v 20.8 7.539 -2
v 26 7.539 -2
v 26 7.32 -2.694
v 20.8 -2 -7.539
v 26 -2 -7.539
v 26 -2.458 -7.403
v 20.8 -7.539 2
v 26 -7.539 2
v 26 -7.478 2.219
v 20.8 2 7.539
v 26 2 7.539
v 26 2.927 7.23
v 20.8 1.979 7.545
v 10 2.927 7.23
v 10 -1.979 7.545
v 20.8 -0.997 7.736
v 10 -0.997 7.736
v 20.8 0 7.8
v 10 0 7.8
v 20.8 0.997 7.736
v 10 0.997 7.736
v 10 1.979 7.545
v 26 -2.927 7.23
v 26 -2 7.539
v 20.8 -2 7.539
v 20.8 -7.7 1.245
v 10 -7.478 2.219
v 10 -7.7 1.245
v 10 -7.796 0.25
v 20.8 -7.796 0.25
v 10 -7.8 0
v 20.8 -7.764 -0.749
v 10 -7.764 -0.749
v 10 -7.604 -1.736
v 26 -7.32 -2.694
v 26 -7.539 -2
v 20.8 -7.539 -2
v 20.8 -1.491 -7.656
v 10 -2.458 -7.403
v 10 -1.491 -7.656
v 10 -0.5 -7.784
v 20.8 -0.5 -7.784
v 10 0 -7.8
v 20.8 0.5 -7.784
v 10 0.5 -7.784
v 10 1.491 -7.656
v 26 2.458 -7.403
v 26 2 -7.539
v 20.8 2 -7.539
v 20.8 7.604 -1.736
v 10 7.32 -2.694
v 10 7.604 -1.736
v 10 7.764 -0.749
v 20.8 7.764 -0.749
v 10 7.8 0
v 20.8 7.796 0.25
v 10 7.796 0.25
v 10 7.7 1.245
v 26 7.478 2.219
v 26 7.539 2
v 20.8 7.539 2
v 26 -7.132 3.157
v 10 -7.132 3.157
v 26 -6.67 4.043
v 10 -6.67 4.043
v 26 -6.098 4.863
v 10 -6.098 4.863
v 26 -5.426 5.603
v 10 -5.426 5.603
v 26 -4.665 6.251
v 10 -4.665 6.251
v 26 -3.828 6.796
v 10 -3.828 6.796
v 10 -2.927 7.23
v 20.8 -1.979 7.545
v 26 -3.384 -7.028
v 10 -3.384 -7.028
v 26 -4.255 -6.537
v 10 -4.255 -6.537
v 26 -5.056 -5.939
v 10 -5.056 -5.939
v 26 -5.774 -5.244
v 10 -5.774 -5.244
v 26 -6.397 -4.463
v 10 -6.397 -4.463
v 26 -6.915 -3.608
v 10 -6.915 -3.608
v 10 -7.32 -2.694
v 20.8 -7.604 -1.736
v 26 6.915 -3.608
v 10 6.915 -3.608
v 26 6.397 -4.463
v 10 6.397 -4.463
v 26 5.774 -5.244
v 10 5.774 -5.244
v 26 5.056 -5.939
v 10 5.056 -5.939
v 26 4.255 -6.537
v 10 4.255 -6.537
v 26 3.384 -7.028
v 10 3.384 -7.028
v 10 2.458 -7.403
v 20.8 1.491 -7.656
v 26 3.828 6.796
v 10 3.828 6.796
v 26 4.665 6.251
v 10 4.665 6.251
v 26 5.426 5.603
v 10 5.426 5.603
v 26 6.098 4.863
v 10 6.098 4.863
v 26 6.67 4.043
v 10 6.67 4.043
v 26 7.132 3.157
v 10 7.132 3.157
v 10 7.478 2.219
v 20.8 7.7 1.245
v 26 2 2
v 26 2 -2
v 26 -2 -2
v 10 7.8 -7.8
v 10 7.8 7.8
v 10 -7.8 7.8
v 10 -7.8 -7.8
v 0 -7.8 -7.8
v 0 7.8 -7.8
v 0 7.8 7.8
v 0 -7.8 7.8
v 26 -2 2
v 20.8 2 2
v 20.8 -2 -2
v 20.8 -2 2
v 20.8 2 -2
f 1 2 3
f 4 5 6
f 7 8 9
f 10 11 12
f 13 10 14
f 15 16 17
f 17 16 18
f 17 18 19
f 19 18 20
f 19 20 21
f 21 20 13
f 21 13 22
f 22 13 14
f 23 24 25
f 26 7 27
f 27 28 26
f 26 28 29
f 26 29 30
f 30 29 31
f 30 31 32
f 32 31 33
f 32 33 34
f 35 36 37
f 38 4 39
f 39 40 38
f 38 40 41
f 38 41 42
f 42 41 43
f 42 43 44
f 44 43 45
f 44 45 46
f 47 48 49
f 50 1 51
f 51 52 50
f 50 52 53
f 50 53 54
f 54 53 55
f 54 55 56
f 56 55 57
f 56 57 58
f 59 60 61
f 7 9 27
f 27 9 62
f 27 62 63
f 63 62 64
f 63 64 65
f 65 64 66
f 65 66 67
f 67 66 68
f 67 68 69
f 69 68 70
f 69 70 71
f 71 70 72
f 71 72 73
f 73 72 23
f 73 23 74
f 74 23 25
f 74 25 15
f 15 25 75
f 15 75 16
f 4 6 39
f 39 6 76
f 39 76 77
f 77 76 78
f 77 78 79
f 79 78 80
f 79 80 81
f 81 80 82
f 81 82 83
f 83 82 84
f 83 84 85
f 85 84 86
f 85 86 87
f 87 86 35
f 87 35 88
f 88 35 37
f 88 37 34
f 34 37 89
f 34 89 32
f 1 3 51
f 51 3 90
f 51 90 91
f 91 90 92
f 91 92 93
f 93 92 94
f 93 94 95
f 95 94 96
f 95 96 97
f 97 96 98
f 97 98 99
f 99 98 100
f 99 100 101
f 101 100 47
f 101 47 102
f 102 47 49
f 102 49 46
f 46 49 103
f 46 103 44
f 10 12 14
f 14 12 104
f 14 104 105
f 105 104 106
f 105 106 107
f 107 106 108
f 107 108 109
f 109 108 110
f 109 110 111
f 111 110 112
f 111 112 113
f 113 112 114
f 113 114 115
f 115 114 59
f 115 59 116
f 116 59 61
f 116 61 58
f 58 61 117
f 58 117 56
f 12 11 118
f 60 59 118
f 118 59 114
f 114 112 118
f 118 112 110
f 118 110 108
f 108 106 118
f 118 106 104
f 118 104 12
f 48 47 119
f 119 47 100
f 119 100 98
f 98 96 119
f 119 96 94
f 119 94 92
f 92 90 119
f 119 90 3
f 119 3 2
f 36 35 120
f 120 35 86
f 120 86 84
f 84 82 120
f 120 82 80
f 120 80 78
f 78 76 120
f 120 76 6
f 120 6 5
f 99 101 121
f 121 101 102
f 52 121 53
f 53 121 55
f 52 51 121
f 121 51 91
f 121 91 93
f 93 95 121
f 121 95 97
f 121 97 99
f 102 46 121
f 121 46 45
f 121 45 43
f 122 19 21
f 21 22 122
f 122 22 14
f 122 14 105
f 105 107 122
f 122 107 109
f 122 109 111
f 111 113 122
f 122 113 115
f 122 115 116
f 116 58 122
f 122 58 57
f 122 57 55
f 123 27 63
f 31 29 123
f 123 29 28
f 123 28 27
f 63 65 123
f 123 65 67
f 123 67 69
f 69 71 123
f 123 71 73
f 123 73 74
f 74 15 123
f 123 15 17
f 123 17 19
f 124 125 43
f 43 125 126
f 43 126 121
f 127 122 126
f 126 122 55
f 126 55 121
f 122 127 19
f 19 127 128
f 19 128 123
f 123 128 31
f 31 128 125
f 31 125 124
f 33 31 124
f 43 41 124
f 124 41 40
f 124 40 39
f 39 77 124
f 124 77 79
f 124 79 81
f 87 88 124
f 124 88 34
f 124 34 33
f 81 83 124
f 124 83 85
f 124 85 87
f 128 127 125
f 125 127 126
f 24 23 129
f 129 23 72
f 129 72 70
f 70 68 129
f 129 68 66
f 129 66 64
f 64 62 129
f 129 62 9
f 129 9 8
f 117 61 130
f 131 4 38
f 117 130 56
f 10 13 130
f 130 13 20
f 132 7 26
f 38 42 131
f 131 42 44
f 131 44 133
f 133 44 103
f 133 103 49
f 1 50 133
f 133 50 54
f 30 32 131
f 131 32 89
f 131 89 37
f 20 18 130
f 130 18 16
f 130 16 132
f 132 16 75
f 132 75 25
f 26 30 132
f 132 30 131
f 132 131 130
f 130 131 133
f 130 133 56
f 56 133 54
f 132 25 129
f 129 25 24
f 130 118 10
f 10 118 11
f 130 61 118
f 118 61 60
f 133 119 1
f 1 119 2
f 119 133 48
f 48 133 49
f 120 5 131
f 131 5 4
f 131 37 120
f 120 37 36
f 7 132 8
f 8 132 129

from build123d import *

# Parameters (mm, degrees)
SKETCH1_W           = 15.6
SKETCH1_H           = 15.6
BOSS_EXTRUDE1_DEPTH = 10
SKETCH2_R           = 7.8
BOSS_EXTRUDE2_DEPTH = 16
SKETCH3_W           = 4
SKETCH3_H           = 4
CUT_EXTRUDE2_DEPTH  = 5.2


with BuildPart() as part:
    # Sketch1 → Boss-Extrude1 (new body)
    with BuildSketch(Plane(origin=(0, 0, 0), x_dir=(0, 0, -1), z_dir=(1, 0, 0))):
        Rectangle(SKETCH1_W, SKETCH1_H)
    extrude(amount=BOSS_EXTRUDE1_DEPTH)

    # Sketch2 → Boss-Extrude2 (add)
    with BuildSketch(Plane(origin=(10, 0, 0), x_dir=(0, 0, -1), z_dir=(1, 0, 0))):
        Circle(SKETCH2_R)
    extrude(amount=BOSS_EXTRUDE2_DEPTH)

    # Sketch3 → Cut-Extrude2 (cut)
    with BuildSketch(Plane(origin=(26, 0, 0), x_dir=(0, 0, -1), z_dir=(1, 0, 0))):
        with BuildLine():
            Line((-2, -2), (-2, 2))
            Line((-2, 2), (-7.53923073, 2))
            ThreePointArc((-7.53923073, 2), (-7.734532943, 1.008464255), (-7.8, 0))
            ThreePointArc((-7.8, 0), (-7.734532943, -1.008464255), (-7.53923073, -2))
            Line((-7.53923073, -2), (-2, -2))
        make_face()
        with BuildLine():
            ThreePointArc((2, 7.53923073), (1.008464255, 7.734532943), (0, 7.8))
            ThreePointArc((0, 7.8), (-1.008464255, 7.734532943), (-2, 7.53923073))
            Line((-2, 7.53923073), (-2, 2))
            Line((-2, 2), (2, 2))
            Line((2, 2), (2, 7.53923073))
        make_face()
        with BuildLine():
            Line((7.53923073, 2), (2, 2))
            Line((2, 2), (2, -2))
            Line((2, -2), (7.53923073, -2))
            ThreePointArc((7.53923073, -2), (7.734532943, -1.008464255), (7.8, 0))
            ThreePointArc((7.8, 0), (7.734532943, 1.008464255), (7.53923073, 2))
        make_face()
        with BuildLine():
            Line((2, -2), (-2, -2))
            Line((-2, -2), (-2, -7.53923073))
            ThreePointArc((-2, -7.53923073), (-1.008464255, -7.734532943), (0, -7.8))
            ThreePointArc((0, -7.8), (1.008464255, -7.734532943), (2, -7.53923073))
            Line((2, -7.53923073), (2, -2))
        make_face()
        with BuildLine():
            ThreePointArc((-7.53923073, -2), (-7.734532943, -1.008464255), (-7.8, 0))
            Line((-7.8, 0), (-7.8, -2))
            Line((-7.8, -2), (-7.53923073, -2))
        make_face()
        with BuildLine():
            ThreePointArc((-7.8, 0), (-7.734532943, 1.008464255), (-7.53923073, 2))
            Line((-7.53923073, 2), (-7.8, 2))
            Line((-7.8, 2), (-7.8, 0))
        make_face()
        with BuildLine():
            Line((0, 7.8), (-2, 7.8))
            Line((-2, 7.8), (-2, 7.53923073))
            ThreePointArc((-2, 7.53923073), (-1.008464255, 7.734532943), (0, 7.8))
        make_face()
        with BuildLine():
            Line((2, 7.8), (0, 7.8))
            ThreePointArc((0, 7.8), (1.008464255, 7.734532943), (2, 7.53923073))
            Line((2, 7.53923073), (2, 7.8))
        make_face()
        with BuildLine():
            Line((7.8, 2), (7.53923073, 2))
            ThreePointArc((7.53923073, 2), (7.734532943, 1.008464255), (7.8, 0))
            Line((7.8, 0), (7.8, 2))
        make_face()
        with BuildLine():
            Line((7.8, -2), (7.8, 0))
            ThreePointArc((7.8, 0), (7.734532943, -1.008464255), (7.53923073, -2))
            Line((7.53923073, -2), (7.8, -2))
        make_face()
        Rectangle(SKETCH3_W, SKETCH3_H)
    extrude(amount=-CUT_EXTRUDE2_DEPTH, mode=Mode.SUBTRACT)


solid = part.part
